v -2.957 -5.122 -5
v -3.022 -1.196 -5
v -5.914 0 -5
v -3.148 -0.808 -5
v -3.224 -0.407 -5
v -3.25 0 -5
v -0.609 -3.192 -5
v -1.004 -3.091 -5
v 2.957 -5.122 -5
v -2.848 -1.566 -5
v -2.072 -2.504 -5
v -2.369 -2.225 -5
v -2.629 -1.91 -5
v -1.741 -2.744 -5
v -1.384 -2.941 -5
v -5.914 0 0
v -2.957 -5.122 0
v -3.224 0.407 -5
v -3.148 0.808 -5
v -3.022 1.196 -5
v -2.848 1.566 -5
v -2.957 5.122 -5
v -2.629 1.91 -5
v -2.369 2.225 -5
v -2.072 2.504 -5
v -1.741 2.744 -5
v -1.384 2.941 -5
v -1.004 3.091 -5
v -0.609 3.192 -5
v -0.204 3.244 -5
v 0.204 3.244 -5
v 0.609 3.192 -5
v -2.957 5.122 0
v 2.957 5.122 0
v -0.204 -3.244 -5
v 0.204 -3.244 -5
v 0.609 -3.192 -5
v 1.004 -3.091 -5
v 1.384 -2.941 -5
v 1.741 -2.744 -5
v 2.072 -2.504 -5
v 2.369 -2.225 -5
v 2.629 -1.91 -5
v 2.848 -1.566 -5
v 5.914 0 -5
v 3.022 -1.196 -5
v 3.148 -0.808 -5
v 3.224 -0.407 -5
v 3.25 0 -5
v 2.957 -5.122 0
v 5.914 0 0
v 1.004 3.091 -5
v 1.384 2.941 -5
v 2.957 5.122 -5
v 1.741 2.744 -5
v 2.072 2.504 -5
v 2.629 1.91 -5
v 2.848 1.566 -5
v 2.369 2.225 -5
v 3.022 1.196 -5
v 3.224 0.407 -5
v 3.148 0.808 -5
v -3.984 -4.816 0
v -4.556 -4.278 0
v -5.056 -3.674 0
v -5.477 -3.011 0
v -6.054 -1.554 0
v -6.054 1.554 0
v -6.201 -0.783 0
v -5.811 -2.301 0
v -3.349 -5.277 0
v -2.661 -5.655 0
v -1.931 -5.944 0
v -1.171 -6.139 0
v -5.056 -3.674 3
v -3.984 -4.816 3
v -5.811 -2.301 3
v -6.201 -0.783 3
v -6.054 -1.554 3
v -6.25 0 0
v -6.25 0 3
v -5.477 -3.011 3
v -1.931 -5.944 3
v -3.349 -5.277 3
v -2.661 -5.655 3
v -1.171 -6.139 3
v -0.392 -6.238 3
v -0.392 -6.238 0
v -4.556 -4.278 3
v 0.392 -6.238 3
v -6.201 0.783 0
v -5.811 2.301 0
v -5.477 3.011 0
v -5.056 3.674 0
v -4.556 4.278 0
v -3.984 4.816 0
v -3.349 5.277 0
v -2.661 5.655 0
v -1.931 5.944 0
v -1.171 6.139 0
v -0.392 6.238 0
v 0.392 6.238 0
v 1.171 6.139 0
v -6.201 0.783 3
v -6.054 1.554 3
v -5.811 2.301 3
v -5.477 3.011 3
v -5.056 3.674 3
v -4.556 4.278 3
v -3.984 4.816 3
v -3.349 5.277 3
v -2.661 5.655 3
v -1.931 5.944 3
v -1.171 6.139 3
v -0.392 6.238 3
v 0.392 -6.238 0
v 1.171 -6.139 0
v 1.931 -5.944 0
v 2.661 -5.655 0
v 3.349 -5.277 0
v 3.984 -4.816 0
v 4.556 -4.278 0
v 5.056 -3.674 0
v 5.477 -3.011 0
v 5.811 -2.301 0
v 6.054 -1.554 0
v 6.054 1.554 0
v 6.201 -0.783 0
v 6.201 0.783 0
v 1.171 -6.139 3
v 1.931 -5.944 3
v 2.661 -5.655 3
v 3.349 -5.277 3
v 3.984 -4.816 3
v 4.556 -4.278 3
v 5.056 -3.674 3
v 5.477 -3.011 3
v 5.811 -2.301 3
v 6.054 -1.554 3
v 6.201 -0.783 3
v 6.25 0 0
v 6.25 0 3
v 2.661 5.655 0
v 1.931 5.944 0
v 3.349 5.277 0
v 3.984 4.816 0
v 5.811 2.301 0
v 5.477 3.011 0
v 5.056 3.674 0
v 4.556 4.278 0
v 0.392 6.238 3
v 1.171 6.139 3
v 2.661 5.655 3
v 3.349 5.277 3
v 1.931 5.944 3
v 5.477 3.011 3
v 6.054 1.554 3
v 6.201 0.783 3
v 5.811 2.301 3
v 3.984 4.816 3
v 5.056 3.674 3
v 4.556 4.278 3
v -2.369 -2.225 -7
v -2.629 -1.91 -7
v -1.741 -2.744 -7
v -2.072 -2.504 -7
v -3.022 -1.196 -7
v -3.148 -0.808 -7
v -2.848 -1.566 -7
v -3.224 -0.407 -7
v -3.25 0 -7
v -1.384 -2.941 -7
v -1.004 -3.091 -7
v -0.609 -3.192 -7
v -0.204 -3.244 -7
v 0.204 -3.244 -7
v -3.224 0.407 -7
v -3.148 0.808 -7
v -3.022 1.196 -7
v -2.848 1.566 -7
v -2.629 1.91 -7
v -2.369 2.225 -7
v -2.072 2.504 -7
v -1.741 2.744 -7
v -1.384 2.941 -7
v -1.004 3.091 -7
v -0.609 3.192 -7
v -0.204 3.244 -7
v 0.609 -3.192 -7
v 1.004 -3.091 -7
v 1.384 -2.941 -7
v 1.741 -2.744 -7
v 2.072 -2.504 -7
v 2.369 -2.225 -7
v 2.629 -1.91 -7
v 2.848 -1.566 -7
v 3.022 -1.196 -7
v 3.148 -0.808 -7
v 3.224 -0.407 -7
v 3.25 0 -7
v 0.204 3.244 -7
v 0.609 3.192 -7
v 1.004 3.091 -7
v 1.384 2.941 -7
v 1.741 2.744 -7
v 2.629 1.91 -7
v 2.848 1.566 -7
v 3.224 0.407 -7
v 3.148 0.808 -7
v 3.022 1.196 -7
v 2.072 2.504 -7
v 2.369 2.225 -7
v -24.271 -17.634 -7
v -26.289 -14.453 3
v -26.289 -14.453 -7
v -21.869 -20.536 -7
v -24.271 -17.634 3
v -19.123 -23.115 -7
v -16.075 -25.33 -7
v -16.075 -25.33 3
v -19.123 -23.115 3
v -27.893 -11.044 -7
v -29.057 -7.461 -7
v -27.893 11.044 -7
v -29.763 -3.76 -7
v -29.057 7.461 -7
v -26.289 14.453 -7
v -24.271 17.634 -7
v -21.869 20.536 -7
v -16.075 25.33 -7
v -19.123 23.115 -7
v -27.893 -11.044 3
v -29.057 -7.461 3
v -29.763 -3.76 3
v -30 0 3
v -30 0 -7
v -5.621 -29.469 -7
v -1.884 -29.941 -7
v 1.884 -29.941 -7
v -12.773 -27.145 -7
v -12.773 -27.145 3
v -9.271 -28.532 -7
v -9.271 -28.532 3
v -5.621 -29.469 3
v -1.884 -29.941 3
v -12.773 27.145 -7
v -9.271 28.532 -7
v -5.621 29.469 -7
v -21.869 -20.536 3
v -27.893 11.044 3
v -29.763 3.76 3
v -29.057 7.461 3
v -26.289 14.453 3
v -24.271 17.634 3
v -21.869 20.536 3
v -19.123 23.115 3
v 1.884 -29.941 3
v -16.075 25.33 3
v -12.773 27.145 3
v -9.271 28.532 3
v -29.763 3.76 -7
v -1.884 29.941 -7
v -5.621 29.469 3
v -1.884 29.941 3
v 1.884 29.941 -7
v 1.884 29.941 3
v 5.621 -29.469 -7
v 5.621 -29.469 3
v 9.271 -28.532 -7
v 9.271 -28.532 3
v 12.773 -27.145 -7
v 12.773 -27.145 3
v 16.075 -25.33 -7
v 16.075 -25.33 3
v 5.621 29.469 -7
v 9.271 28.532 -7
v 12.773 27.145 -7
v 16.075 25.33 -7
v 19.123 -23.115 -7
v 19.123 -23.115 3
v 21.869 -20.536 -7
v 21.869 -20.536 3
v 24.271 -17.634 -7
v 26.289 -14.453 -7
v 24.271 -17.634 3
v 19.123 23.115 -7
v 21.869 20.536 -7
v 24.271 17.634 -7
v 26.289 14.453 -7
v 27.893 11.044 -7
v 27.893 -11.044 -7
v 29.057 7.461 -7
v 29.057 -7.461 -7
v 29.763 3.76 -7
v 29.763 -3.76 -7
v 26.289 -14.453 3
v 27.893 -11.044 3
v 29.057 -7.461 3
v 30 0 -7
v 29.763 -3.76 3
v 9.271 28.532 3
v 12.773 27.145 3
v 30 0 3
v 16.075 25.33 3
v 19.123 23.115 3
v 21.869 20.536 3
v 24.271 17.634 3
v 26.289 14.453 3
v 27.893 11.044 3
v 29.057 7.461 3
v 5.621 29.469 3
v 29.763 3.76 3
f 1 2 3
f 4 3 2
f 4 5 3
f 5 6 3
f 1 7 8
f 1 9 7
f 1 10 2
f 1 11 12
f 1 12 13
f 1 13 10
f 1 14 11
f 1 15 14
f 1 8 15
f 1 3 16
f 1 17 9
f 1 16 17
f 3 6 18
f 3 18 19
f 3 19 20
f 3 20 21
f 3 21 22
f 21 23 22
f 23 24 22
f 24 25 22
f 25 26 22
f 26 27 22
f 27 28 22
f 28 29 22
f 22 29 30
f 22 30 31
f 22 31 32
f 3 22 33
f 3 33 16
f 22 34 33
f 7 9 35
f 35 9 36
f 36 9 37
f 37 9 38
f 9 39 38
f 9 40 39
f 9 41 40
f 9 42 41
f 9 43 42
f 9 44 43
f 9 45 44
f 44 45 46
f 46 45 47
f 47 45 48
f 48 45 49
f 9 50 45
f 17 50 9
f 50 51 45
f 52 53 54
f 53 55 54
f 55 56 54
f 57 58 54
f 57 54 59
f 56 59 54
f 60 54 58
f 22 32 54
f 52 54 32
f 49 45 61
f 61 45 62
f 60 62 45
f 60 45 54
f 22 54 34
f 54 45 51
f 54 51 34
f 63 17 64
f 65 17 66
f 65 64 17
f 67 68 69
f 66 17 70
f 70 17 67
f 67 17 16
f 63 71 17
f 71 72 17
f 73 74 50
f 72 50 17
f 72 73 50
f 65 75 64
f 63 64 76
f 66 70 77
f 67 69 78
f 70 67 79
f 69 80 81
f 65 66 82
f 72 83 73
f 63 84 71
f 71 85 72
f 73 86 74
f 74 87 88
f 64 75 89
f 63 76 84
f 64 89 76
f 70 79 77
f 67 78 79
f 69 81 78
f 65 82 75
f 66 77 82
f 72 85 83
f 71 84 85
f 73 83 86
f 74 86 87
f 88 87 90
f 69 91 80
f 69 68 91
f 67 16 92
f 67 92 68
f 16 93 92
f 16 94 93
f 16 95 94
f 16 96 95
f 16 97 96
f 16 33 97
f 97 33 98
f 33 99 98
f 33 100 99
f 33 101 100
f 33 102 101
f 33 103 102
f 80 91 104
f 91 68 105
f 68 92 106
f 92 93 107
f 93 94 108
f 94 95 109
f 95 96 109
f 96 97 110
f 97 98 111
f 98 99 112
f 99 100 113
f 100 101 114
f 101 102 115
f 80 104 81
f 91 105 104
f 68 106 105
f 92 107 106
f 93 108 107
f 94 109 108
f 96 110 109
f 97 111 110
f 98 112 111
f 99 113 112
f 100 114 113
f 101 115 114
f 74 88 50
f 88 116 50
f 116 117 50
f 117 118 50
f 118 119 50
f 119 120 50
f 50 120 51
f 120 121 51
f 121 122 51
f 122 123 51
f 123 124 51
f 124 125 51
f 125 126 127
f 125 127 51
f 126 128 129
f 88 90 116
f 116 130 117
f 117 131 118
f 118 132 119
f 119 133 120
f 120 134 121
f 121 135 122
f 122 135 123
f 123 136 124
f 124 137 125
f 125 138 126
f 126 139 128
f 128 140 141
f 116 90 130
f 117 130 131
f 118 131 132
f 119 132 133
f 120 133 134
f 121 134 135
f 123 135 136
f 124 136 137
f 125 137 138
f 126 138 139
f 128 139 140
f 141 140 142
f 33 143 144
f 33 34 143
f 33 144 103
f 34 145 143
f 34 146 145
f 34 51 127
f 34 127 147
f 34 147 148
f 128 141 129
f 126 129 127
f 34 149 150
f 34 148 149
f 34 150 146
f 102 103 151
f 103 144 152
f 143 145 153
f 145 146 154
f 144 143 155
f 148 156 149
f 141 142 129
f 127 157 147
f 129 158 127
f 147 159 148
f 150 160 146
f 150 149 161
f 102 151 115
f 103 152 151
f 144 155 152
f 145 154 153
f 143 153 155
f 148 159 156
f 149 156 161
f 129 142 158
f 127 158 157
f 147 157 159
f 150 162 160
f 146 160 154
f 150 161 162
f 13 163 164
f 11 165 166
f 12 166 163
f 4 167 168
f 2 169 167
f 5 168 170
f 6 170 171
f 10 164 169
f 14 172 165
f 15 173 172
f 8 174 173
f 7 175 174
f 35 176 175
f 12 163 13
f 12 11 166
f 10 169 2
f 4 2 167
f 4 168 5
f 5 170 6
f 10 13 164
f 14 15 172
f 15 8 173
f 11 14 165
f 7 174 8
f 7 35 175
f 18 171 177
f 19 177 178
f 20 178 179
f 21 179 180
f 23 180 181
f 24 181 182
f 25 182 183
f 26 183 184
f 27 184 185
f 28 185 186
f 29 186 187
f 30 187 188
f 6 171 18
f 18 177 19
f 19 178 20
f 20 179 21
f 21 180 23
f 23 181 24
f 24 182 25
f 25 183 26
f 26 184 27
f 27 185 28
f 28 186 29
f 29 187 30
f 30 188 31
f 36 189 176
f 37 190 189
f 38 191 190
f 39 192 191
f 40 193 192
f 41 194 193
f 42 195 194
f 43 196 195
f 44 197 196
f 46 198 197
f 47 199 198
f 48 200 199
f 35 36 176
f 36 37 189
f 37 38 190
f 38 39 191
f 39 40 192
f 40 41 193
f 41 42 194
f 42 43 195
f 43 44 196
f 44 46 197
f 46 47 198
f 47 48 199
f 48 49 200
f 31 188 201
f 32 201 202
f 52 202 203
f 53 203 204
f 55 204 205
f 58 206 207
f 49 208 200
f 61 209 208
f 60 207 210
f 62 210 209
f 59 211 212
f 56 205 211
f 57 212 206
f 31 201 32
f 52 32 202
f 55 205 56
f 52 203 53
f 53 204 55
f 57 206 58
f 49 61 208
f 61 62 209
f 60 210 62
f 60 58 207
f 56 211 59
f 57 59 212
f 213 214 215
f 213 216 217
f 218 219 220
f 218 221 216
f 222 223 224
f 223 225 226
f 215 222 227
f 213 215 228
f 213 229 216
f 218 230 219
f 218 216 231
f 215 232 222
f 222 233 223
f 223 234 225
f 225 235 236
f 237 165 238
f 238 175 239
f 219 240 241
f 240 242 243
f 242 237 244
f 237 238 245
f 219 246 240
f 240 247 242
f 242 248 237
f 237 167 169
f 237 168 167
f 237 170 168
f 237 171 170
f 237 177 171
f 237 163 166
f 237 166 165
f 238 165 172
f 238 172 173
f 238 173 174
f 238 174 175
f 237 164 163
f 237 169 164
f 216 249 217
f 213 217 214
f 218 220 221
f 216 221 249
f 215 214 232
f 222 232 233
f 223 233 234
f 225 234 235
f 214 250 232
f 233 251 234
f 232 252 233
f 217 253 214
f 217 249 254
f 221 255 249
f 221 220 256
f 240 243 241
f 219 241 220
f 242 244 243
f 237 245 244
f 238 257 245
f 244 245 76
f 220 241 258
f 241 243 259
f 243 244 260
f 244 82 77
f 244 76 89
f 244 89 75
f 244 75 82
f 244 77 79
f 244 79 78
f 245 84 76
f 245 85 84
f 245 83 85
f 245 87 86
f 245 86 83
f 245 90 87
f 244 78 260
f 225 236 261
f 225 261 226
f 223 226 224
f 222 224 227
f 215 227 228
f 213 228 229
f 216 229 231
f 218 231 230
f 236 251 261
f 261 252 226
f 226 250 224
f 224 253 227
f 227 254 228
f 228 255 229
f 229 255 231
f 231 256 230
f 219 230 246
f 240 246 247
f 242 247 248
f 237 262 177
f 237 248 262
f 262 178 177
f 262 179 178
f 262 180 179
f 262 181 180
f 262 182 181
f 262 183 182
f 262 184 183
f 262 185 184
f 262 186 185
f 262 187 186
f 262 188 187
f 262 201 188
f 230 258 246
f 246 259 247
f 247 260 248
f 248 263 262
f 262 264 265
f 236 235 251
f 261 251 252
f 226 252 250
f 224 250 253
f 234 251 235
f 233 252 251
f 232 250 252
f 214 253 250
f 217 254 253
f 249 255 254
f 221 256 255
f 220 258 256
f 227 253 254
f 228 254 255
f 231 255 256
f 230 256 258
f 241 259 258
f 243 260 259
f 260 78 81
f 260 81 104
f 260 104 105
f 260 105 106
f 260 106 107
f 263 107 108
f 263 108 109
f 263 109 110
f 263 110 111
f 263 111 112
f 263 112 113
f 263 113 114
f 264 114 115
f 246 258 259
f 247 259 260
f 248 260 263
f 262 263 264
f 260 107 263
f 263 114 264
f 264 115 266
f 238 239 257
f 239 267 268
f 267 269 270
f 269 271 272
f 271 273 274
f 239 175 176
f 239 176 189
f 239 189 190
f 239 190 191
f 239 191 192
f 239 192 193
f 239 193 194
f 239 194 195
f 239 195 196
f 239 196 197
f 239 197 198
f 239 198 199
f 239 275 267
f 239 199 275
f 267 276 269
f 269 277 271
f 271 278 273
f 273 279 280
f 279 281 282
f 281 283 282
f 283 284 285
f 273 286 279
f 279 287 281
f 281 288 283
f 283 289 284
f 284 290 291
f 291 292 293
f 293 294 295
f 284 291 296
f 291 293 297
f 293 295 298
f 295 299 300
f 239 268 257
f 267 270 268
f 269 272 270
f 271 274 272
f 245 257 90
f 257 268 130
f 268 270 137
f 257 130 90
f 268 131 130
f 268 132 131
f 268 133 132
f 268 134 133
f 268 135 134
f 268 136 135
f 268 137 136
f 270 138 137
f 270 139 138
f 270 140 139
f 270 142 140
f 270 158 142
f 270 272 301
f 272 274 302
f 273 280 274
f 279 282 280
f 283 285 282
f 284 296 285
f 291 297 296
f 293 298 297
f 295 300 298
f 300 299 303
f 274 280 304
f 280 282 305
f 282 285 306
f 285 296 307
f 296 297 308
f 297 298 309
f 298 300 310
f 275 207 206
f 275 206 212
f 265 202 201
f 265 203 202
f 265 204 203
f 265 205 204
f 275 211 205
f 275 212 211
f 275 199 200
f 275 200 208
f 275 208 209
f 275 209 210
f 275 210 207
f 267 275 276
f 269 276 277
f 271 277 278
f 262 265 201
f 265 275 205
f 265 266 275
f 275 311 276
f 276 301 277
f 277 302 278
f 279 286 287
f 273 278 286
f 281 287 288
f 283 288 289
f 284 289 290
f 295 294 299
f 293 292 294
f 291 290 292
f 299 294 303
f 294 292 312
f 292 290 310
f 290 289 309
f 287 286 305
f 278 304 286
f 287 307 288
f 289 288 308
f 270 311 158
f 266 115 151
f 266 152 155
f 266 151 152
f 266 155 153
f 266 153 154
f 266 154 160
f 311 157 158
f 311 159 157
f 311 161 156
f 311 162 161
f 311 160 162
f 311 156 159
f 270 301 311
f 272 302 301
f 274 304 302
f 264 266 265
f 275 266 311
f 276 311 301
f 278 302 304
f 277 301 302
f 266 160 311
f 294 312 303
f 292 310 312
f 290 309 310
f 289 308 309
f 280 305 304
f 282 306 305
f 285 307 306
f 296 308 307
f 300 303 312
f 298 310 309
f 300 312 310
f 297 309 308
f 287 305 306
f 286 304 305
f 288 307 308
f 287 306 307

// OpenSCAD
$fn = 50;


difference() {
	union() {
		translate(v = [0, 0, -7.0000000000]) {
			cylinder(h = 10.0000000000, r = 30.0000000000);
		}
	}
	union() {
		translate(v = [0, 0, 0]) {
			rotate(a = [0, 0, 0]) {
				difference() {
					union() {
						translate(v = [0, 0, -5]) {
							linear_extrude(height = 5) {
								polygon(points = [[5.9142500000, 0.0000000000], [2.9571250000, 5.1218907443], [-2.9571250000, 5.1218907443], [-5.9142500000, 0.0000000000], [-2.9571250000, -5.1218907443], [2.9571250000, -5.1218907443]]);
							}
						}
					}
					union();
				}
			}
		}
		#cylinder(h = 3, r = 6.2500000000);
		#translate(v = [0, 0, -100.0000000000]) {
			cylinder(h = 200, r = 3.2500000000);
		}
	}
}
